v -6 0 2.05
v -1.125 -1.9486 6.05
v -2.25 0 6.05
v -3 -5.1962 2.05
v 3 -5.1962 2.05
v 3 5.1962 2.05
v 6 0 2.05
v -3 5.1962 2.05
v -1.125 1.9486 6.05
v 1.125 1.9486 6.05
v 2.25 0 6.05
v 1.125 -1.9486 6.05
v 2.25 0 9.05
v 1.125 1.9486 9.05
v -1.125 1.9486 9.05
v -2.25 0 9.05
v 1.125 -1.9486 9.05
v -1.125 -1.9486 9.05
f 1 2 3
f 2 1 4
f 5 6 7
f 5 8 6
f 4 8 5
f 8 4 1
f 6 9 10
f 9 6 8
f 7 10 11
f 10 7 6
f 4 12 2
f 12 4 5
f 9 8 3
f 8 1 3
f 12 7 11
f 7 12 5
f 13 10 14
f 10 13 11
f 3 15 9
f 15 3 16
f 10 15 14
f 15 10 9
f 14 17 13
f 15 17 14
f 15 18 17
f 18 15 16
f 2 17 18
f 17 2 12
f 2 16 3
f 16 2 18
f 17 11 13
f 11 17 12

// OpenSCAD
d=7.75; //measured
doffset=0.3;
outer=12;

flathead=1.25;
foffset=0.0;
fheight=3;
fbase=0;

nheight=0.95;
htransfer=4;
dgrip=4.5;
dgrip_offset=0.3;
hgrip=3;

union() { 
    /*
    // cylinder cutout of outer hexagon  
    difference() {
      translate([0,0,-nheight]) cylinder(r=outer/2,h=fheight+fbase,$fn=6);
      translate([0,0,-nheight]) cylinder(r=(d+doffset)/2,h=fheight+nheight,$fn=40);
      //cube(50,50,50);
    }
    
    //nubs
    difference() {
      rectangle();
      cylinder(r=outer-9.25,h=fheight,$fn=30);
    }
    */
    
    // transfer + grip
    translate([0,0,-nheight+fheight+fbase]) cylinder(r1=outer/2,r2=dgrip/2,h=htransfer,$fn=6);
    translate([0,0,-nheight+fheight+fbase+htransfer]) cylinder(r=dgrip/2,h=hgrip,$fn=6);
};

module rectangle() {
    w=flathead-foffset;
    l=outer-2;
    h=fheight-nheight;
    translate([0,0,h/2]) cube([w,l,h], center=true);
}
